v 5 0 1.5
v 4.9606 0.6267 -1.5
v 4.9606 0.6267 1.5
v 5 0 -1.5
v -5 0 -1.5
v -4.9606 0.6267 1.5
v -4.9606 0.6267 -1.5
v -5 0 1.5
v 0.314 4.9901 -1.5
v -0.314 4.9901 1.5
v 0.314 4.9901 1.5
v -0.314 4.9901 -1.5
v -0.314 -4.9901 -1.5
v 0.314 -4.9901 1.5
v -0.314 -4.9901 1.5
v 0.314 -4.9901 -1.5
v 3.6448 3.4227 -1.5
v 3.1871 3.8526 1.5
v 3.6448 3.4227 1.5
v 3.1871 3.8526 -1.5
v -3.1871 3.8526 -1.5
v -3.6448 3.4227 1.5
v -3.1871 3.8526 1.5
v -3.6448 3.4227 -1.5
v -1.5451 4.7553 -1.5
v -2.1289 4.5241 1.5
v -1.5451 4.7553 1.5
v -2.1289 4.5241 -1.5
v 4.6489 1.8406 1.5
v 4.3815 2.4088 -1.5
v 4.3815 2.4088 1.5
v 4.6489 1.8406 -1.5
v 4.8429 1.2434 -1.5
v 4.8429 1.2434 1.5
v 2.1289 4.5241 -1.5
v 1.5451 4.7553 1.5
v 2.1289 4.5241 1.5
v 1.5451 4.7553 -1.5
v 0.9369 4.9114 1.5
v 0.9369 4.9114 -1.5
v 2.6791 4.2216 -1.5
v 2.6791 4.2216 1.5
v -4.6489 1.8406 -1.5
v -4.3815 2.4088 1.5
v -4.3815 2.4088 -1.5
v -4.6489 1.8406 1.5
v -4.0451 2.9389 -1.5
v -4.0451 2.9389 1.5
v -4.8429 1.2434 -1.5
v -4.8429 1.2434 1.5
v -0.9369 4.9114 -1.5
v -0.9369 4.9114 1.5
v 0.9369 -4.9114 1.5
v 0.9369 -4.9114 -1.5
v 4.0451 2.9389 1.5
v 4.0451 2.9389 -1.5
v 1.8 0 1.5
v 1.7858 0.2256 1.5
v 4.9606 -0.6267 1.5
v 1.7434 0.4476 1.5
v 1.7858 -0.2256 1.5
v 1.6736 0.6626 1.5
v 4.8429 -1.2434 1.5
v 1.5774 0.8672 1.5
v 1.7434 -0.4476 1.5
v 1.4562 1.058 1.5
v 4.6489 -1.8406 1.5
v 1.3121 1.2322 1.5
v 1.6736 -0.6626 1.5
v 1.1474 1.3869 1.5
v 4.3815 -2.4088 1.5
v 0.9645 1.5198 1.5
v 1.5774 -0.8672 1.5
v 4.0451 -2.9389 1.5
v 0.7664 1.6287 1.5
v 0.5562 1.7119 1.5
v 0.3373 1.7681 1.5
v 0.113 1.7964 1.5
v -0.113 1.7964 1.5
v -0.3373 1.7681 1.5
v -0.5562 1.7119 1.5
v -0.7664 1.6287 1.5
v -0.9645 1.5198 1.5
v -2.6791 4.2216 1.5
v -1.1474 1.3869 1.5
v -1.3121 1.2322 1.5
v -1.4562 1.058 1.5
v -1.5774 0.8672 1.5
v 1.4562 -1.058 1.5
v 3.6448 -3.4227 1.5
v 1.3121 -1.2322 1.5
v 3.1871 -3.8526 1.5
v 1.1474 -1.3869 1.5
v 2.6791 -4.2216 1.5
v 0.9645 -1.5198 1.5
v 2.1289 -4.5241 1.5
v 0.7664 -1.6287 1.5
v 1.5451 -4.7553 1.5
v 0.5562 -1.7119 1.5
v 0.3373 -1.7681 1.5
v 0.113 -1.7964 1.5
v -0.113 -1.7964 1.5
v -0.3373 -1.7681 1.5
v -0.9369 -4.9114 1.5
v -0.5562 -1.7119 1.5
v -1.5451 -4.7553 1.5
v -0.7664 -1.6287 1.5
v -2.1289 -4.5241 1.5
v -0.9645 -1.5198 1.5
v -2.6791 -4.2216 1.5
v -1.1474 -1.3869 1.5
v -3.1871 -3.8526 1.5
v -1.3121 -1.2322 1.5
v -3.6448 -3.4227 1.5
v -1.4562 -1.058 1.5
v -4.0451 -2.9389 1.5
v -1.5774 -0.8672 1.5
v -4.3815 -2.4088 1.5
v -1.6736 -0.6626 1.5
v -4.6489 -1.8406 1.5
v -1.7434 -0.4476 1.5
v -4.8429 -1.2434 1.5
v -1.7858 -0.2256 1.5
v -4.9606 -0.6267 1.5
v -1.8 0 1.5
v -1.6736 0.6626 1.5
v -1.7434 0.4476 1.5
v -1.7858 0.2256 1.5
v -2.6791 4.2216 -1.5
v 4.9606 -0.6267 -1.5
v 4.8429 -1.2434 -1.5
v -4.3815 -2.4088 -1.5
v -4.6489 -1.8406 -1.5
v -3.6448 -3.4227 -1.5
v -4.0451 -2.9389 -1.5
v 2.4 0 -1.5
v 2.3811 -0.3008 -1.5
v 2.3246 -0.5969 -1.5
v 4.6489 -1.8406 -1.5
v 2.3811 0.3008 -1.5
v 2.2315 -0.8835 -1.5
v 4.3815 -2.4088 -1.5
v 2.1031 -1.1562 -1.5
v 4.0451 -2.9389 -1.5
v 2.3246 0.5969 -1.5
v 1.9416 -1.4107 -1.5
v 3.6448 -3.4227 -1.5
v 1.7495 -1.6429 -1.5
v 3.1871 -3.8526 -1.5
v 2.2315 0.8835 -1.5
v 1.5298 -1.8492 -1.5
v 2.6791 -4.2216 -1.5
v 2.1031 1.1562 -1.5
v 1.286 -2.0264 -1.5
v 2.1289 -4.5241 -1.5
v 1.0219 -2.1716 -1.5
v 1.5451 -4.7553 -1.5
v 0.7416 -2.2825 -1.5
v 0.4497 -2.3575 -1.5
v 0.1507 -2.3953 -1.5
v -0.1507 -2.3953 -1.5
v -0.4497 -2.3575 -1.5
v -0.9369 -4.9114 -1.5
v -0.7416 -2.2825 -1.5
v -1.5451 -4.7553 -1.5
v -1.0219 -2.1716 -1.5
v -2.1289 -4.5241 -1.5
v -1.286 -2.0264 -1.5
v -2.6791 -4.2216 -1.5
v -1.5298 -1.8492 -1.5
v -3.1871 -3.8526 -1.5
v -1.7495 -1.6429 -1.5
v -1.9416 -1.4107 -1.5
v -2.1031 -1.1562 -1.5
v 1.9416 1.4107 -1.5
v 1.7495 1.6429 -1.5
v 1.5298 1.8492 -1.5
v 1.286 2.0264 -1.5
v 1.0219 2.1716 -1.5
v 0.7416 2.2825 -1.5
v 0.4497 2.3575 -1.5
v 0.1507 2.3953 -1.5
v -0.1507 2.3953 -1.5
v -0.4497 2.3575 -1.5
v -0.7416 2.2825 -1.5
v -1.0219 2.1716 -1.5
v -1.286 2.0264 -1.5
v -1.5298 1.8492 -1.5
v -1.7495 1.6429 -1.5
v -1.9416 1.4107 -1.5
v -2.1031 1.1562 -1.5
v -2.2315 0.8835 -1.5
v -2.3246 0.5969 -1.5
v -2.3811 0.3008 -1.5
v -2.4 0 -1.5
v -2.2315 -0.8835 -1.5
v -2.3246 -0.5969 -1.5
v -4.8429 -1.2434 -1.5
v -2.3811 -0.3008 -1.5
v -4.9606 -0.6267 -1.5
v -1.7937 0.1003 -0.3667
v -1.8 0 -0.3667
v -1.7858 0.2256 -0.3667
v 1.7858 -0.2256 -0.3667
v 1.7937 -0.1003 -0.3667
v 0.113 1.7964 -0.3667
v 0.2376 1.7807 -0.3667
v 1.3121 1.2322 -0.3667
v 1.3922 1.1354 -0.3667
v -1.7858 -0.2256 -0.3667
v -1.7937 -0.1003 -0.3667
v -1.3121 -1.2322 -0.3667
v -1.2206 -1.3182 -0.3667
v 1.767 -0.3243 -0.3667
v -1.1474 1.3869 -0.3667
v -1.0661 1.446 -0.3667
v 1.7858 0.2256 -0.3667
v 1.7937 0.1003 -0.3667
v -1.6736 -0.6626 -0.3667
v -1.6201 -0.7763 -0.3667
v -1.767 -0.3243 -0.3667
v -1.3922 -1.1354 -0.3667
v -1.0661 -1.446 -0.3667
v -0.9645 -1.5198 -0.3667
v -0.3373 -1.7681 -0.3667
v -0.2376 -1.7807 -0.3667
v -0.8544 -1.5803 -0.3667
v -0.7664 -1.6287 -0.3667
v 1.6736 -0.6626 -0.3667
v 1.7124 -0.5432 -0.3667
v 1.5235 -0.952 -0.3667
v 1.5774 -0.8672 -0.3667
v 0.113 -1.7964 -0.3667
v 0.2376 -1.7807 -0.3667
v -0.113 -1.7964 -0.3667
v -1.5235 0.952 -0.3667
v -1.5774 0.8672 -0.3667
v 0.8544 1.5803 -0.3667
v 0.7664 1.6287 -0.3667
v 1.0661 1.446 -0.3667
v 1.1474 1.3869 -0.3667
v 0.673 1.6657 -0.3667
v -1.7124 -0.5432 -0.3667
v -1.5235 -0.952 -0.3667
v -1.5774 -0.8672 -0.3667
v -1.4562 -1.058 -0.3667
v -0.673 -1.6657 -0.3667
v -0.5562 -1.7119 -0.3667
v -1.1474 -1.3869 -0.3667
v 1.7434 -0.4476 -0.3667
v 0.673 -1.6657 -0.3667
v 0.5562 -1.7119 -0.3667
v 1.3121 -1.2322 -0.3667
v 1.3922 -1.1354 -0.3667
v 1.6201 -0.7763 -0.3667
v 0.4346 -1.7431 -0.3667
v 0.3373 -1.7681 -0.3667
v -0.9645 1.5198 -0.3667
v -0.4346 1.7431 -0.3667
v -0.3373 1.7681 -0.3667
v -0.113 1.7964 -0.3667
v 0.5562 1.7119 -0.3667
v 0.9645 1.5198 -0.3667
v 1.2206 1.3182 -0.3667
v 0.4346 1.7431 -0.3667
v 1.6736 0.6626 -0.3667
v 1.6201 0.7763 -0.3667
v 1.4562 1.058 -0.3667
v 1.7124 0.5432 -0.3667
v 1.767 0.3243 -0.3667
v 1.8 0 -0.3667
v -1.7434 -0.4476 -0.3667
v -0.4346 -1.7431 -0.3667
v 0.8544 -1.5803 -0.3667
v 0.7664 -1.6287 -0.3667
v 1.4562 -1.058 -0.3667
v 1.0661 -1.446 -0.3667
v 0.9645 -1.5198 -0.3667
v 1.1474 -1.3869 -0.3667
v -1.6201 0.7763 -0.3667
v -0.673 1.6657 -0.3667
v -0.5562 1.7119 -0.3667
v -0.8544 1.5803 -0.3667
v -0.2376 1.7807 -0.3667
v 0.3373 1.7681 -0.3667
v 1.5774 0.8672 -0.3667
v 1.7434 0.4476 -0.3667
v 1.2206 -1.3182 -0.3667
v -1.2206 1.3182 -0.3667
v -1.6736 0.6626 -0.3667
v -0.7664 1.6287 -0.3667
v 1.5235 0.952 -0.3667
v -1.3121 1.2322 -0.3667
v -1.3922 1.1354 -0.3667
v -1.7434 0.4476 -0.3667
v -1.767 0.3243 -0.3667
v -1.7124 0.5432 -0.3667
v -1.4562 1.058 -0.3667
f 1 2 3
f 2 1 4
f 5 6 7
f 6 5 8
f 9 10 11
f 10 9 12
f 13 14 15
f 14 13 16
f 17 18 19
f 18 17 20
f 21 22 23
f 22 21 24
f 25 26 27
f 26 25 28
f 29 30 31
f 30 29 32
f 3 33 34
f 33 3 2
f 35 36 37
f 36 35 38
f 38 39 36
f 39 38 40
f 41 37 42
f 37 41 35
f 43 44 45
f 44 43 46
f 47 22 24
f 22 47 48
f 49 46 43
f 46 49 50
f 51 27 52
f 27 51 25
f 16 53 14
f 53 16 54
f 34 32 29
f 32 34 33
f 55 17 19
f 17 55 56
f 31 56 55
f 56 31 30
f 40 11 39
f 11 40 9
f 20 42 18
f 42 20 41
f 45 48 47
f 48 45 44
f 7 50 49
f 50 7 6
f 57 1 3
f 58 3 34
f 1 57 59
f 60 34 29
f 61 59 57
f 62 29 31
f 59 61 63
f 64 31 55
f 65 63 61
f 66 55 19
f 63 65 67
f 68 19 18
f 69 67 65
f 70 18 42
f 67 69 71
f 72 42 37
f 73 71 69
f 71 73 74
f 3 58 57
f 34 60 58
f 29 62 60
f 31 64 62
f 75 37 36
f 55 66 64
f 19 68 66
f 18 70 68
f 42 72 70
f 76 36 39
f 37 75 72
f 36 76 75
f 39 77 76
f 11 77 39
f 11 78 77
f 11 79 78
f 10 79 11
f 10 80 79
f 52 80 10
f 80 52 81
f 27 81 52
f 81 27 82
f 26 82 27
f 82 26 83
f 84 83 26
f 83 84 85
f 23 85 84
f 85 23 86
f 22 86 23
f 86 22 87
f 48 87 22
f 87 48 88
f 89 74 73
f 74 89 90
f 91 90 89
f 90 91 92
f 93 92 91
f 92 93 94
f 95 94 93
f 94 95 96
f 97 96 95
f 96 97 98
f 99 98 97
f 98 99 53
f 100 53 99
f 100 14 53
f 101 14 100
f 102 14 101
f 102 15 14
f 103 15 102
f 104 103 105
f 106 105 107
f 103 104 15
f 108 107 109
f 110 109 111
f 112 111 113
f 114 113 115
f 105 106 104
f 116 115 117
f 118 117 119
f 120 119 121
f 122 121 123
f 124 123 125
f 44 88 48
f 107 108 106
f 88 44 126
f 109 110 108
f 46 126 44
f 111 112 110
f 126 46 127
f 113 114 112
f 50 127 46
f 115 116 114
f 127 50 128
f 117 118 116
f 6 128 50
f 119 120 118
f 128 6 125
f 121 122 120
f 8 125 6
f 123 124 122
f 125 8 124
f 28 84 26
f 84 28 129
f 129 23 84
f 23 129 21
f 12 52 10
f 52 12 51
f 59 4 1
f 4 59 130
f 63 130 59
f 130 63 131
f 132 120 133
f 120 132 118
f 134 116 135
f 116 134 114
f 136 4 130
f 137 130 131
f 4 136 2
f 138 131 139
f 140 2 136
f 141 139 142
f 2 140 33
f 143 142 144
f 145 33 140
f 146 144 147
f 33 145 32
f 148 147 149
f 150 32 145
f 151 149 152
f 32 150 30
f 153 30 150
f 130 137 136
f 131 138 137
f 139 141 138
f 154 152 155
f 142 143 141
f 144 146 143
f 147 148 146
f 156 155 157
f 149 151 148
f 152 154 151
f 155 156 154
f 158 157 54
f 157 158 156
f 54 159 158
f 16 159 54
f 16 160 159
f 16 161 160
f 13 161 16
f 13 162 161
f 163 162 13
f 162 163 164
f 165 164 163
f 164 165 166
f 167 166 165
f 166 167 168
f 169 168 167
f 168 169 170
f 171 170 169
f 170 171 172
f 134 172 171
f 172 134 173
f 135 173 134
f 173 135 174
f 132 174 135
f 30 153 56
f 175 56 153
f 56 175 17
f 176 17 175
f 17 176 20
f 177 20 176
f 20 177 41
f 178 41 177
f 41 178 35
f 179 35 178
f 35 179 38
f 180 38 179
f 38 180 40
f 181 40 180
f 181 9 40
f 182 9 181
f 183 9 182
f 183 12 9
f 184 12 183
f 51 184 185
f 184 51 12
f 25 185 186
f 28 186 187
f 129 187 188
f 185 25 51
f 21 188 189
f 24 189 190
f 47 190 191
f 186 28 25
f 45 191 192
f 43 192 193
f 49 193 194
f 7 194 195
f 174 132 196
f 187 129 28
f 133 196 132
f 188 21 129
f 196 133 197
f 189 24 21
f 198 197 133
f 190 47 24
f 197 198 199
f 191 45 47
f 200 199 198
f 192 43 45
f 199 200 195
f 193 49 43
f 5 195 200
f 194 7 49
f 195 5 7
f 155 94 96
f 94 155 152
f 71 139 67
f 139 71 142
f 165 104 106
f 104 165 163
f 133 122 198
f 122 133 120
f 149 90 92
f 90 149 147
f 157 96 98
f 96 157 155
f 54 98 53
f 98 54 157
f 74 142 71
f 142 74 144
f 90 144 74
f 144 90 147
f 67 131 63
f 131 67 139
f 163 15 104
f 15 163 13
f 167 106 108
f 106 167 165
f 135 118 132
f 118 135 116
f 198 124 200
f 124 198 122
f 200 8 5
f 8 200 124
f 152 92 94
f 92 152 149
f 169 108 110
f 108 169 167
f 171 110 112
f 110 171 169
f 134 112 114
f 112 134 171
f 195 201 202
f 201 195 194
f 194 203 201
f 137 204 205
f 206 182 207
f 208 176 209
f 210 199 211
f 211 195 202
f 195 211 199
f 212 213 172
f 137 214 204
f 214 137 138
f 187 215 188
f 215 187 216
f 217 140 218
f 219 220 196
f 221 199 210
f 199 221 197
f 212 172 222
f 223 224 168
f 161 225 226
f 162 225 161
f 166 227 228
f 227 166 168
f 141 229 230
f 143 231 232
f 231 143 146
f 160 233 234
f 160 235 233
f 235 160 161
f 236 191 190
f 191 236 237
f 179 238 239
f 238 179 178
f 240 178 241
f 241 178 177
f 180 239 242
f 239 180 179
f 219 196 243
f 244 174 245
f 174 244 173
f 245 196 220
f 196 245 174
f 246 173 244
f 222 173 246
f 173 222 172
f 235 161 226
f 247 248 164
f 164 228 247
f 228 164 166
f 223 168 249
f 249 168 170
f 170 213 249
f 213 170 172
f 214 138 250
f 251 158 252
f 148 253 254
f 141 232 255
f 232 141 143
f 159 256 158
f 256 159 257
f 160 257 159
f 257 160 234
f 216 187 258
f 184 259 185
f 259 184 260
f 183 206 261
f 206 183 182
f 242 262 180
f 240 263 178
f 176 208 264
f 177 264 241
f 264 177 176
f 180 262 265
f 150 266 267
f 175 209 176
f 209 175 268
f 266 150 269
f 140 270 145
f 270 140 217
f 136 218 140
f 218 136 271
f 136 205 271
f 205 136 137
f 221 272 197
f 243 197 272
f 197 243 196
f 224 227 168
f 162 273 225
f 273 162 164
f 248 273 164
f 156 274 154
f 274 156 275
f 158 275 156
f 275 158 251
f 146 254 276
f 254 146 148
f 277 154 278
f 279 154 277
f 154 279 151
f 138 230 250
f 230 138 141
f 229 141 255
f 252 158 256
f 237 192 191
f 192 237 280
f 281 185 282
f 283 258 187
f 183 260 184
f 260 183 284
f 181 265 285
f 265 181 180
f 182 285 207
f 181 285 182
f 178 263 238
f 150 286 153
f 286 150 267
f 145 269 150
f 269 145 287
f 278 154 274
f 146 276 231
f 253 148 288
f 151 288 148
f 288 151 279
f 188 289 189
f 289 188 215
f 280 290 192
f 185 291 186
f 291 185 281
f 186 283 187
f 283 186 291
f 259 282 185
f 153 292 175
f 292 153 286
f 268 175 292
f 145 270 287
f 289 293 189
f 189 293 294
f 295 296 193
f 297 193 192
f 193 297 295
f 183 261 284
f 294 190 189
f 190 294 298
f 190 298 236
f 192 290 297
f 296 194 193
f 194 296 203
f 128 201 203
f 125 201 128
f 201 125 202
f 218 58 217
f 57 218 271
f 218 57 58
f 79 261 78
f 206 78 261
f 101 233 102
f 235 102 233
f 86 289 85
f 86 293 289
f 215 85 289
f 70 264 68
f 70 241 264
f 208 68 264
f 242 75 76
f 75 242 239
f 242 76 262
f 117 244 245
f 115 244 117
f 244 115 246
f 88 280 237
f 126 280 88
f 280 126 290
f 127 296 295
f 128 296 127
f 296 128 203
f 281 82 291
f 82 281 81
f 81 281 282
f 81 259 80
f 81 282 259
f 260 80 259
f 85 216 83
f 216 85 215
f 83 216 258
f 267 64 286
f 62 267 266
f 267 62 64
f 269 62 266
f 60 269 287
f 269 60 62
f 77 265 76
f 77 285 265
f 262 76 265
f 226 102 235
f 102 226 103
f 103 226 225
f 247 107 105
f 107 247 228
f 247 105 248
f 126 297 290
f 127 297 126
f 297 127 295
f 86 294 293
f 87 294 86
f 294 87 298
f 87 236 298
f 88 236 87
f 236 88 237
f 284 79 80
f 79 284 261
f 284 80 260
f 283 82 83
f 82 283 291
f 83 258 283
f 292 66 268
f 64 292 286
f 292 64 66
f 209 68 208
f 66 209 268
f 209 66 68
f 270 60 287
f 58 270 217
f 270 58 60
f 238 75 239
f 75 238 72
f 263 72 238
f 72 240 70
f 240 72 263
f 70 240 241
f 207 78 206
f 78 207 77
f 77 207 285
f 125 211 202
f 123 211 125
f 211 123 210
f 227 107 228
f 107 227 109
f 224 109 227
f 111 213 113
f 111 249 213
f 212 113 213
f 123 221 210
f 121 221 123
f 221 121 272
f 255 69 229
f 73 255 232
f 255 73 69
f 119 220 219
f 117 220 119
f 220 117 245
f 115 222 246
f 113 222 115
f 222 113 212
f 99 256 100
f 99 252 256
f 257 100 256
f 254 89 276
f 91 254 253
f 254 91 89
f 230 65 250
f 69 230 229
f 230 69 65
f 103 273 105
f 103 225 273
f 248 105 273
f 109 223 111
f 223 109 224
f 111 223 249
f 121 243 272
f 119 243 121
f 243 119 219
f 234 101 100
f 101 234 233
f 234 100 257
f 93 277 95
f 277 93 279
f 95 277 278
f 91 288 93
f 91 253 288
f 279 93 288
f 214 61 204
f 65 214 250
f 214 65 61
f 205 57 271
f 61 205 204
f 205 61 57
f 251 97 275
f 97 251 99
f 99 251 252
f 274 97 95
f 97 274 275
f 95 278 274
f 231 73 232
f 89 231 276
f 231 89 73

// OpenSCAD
$fn = 50;


difference() {
	union() {
		translate(v = [0, 0, -1.5000000000]) {
			cylinder(h = 3, r = 5.0000000000);
		}
		translate(v = [0, 0, -1.5000000000]) {
			cylinder(h = 3, r = 3.0000000000);
		}
	}
	union() {
		translate(v = [0, 0, -1.5000000000]) {
			rotate(a = [0, 180, 0]) {
				difference() {
					union() {
						translate(v = [0, 0, -1.7000000000]) {
							cylinder(h = 1.7000000000, r1 = 1.5000000000, r2 = 2.4000000000);
						}
						translate(v = [0, 0, -3.0000000000]) {
							cylinder(h = 3, r = 1.5000000000);
						}
						translate(v = [0, 0, -3.0000000000]) {
							cylinder(h = 3, r = 1.8000000000);
						}
						translate(v = [0, 0, -3.0000000000]) {
							cylinder(h = 3, r = 1.5000000000);
						}
					}
					union();
				}
			}
		}
		translate(v = [0, 0, -50.0000000000]) {
			cylinder(h = 100, r = 1.5000000000);
		}
	}
}
